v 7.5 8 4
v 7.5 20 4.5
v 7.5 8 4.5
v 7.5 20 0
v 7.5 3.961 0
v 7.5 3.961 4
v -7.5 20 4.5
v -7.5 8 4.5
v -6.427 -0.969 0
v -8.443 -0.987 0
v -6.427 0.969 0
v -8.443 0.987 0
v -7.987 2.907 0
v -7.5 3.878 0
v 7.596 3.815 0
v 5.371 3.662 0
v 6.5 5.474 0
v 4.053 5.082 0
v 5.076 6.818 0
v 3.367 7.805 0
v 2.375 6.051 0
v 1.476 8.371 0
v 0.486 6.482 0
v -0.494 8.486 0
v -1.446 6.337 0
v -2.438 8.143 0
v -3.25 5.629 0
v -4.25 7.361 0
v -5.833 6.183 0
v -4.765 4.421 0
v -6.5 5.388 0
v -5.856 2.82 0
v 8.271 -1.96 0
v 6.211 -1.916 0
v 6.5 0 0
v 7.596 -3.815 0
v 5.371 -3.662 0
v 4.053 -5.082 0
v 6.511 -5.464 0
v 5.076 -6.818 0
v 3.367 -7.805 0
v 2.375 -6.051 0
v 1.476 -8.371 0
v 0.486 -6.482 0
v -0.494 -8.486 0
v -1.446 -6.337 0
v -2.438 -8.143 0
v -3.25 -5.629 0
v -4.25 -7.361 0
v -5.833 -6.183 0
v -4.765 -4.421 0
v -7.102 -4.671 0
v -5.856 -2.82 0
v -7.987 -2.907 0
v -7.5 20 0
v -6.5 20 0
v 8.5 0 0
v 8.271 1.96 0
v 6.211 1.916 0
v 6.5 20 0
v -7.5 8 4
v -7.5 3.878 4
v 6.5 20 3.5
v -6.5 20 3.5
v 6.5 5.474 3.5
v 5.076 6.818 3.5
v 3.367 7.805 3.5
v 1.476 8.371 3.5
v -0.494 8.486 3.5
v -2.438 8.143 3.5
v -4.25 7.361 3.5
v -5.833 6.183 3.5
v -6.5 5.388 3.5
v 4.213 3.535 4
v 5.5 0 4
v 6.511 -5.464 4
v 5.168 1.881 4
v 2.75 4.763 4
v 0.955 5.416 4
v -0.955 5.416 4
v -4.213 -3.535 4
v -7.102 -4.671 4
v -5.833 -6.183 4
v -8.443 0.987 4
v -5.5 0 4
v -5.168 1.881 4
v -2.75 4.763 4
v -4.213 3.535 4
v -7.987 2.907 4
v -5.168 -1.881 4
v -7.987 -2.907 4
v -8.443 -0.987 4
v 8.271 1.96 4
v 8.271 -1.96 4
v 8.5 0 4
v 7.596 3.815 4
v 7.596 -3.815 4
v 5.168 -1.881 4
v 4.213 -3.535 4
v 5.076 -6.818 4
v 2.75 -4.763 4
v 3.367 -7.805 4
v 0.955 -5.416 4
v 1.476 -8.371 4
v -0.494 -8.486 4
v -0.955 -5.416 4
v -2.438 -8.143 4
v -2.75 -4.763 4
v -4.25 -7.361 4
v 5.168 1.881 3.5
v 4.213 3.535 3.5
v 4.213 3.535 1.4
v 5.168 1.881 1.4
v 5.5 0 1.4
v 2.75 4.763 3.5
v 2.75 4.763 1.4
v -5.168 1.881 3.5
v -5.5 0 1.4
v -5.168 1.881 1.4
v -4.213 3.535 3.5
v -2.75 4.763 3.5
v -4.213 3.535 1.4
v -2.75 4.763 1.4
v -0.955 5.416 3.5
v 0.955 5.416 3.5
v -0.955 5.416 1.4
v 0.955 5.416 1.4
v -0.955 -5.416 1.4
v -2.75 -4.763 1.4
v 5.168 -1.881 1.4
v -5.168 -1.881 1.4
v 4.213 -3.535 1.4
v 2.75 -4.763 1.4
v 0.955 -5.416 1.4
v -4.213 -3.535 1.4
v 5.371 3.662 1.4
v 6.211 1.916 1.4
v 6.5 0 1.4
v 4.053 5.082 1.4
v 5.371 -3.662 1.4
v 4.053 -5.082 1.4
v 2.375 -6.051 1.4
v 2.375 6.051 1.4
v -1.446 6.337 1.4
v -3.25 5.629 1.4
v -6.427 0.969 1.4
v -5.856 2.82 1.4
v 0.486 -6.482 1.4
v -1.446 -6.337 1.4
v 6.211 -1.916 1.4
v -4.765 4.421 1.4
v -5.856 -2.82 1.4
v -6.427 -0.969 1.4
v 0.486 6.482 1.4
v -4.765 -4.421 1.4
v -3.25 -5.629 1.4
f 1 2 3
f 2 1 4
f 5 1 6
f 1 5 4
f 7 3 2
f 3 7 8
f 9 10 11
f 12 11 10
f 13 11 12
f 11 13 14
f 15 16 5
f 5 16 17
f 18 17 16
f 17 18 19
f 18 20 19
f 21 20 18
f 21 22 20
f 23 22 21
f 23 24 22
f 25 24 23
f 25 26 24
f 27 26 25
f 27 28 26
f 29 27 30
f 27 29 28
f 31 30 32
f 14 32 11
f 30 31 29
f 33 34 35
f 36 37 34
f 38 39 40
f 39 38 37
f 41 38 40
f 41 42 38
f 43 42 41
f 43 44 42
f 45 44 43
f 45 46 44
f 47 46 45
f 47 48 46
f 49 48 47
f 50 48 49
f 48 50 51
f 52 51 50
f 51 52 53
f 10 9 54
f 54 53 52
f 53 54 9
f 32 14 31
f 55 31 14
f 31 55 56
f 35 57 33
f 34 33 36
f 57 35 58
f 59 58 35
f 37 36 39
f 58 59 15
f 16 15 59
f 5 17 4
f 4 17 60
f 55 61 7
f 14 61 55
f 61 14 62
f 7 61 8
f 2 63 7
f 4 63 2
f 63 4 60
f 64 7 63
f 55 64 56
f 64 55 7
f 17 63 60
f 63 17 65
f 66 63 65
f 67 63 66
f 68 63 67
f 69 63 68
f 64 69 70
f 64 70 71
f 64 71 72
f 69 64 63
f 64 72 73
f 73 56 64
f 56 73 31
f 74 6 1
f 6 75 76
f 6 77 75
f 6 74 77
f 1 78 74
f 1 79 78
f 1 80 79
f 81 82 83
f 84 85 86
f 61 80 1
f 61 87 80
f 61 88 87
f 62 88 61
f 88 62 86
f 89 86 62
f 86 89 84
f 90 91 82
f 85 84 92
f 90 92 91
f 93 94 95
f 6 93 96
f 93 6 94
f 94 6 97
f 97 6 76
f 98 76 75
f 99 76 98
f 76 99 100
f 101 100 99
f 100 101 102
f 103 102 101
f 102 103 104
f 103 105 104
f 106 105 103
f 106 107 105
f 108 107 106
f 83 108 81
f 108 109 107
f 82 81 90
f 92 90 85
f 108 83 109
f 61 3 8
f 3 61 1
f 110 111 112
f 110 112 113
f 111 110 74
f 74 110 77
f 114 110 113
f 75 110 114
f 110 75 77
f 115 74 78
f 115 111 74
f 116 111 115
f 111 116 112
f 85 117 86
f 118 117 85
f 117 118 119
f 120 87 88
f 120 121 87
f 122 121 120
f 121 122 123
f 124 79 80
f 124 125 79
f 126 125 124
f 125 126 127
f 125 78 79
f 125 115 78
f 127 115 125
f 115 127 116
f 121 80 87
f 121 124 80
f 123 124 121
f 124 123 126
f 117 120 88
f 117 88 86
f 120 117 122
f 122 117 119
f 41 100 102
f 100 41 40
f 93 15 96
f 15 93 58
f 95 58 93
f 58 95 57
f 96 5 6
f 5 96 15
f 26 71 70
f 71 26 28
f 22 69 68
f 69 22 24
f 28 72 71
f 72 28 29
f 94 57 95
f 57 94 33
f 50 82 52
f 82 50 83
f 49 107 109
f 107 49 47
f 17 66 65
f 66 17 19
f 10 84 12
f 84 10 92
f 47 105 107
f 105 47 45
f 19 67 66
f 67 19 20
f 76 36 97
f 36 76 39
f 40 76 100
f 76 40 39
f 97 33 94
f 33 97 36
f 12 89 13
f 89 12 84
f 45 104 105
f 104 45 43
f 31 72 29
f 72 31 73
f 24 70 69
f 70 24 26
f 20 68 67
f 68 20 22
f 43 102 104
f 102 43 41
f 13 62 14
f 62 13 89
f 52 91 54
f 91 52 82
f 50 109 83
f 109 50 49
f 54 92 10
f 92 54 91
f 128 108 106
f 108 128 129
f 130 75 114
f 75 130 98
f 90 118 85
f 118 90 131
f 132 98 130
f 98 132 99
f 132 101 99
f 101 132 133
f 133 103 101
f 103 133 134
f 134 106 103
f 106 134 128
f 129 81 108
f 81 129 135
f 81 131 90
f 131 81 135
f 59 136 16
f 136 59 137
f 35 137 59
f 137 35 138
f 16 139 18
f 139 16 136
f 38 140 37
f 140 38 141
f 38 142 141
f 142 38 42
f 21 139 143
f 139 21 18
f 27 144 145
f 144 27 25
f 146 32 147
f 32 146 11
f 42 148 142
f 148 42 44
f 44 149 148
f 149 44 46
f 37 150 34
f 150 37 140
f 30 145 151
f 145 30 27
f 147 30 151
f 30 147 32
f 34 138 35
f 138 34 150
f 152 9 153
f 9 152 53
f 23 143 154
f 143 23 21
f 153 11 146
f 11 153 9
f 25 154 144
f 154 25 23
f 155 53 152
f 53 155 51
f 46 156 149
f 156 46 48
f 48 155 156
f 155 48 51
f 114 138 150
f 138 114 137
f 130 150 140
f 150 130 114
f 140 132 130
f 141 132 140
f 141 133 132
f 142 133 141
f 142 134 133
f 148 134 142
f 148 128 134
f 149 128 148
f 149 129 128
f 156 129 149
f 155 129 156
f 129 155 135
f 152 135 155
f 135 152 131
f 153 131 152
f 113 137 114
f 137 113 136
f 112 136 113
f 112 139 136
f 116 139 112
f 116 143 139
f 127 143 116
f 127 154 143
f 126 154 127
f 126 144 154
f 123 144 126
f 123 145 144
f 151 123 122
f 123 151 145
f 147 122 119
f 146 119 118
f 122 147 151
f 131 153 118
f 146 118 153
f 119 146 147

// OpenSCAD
// file: Movement_Ruler_lib.scad
function get_movement_ruler_width() = 15;
function get_movement_ruler_length() = 20; //should be 30

function get_movement_ruler_height() = 4.5;
function get_movement_ruler_pocket_depth() = 3.5;

function get_pivot_outer_rad() = 8.5;
function get_pivot_inner_rad() = 11/2;
function get_pivot_second_inner_rad() = 13/2;

function get_ruler_ridge_length() = 2;

function get_bottom_ruler_indent() = 0.5;

function get_pivot_second_inner_bottom_offset() = 1.5;
// main file
use <Movement_Ruler_lib.scad>;
movement_ruler_width = get_movement_ruler_width();
movement_ruler_length = get_movement_ruler_length(); //should be 30

movement_ruler_height = get_movement_ruler_height();
movement_ruler_pocket_depth = get_movement_ruler_pocket_depth();

pivot_outer_rad = get_pivot_outer_rad();
pivot_inner_rad = get_pivot_inner_rad();
pivot_second_inner_rad = get_pivot_second_inner_rad();

ruler_ridge_length = get_ruler_ridge_length();

bottom_ruler_indent = get_bottom_ruler_indent();

pivot_second_inner_bottom_offset = get_pivot_second_inner_bottom_offset();

//bottom ruler piece
difference(){
    translate([-movement_ruler_width/2,0,0]){
    difference(){
        cube([ movement_ruler_width, movement_ruler_length, movement_ruler_height]);
        //Bottom large indent
        translate([1,-.01,-1])cube([movement_ruler_width-ruler_ridge_length, movement_ruler_length+0.2, movement_ruler_pocket_depth+1]);
        //top shallow indent for pivot piece
        translate([-1,-movement_ruler_length+8,movement_ruler_height-bottom_ruler_indent])cube([movement_ruler_width+2, movement_ruler_length, bottom_ruler_indent+0.1]);
        
        }   //translate([-1,0,movement_ruler_height-bottom_ruler_indent+0.1])cube([movement_ruler_width+2, movement_ruler_length+0.2, bottom_ruler_indent]);
    }
    //larger inner circle which punches through the top
    translate([0,0,-0.1])cylinder(h=movement_ruler_height,r=pivot_inner_rad);
}
difference(){
    cylinder(h=movement_ruler_height,r=pivot_outer_rad);
    //larger inner circle which punches through the top
    translate([0,0,-0.1])cylinder(h=movement_ruler_height,r=pivot_inner_rad);
    //smaller inner circle
    translate([0,0,-0.1])cylinder(h=pivot_second_inner_bottom_offset,r=pivot_second_inner_rad);
    
    //top shallow indent for pivot piece
    translate([0,0,movement_ruler_height-bottom_ruler_indent])cylinder(h=bottom_ruler_indent+0.1,r=pivot_outer_rad+0.1);
}
